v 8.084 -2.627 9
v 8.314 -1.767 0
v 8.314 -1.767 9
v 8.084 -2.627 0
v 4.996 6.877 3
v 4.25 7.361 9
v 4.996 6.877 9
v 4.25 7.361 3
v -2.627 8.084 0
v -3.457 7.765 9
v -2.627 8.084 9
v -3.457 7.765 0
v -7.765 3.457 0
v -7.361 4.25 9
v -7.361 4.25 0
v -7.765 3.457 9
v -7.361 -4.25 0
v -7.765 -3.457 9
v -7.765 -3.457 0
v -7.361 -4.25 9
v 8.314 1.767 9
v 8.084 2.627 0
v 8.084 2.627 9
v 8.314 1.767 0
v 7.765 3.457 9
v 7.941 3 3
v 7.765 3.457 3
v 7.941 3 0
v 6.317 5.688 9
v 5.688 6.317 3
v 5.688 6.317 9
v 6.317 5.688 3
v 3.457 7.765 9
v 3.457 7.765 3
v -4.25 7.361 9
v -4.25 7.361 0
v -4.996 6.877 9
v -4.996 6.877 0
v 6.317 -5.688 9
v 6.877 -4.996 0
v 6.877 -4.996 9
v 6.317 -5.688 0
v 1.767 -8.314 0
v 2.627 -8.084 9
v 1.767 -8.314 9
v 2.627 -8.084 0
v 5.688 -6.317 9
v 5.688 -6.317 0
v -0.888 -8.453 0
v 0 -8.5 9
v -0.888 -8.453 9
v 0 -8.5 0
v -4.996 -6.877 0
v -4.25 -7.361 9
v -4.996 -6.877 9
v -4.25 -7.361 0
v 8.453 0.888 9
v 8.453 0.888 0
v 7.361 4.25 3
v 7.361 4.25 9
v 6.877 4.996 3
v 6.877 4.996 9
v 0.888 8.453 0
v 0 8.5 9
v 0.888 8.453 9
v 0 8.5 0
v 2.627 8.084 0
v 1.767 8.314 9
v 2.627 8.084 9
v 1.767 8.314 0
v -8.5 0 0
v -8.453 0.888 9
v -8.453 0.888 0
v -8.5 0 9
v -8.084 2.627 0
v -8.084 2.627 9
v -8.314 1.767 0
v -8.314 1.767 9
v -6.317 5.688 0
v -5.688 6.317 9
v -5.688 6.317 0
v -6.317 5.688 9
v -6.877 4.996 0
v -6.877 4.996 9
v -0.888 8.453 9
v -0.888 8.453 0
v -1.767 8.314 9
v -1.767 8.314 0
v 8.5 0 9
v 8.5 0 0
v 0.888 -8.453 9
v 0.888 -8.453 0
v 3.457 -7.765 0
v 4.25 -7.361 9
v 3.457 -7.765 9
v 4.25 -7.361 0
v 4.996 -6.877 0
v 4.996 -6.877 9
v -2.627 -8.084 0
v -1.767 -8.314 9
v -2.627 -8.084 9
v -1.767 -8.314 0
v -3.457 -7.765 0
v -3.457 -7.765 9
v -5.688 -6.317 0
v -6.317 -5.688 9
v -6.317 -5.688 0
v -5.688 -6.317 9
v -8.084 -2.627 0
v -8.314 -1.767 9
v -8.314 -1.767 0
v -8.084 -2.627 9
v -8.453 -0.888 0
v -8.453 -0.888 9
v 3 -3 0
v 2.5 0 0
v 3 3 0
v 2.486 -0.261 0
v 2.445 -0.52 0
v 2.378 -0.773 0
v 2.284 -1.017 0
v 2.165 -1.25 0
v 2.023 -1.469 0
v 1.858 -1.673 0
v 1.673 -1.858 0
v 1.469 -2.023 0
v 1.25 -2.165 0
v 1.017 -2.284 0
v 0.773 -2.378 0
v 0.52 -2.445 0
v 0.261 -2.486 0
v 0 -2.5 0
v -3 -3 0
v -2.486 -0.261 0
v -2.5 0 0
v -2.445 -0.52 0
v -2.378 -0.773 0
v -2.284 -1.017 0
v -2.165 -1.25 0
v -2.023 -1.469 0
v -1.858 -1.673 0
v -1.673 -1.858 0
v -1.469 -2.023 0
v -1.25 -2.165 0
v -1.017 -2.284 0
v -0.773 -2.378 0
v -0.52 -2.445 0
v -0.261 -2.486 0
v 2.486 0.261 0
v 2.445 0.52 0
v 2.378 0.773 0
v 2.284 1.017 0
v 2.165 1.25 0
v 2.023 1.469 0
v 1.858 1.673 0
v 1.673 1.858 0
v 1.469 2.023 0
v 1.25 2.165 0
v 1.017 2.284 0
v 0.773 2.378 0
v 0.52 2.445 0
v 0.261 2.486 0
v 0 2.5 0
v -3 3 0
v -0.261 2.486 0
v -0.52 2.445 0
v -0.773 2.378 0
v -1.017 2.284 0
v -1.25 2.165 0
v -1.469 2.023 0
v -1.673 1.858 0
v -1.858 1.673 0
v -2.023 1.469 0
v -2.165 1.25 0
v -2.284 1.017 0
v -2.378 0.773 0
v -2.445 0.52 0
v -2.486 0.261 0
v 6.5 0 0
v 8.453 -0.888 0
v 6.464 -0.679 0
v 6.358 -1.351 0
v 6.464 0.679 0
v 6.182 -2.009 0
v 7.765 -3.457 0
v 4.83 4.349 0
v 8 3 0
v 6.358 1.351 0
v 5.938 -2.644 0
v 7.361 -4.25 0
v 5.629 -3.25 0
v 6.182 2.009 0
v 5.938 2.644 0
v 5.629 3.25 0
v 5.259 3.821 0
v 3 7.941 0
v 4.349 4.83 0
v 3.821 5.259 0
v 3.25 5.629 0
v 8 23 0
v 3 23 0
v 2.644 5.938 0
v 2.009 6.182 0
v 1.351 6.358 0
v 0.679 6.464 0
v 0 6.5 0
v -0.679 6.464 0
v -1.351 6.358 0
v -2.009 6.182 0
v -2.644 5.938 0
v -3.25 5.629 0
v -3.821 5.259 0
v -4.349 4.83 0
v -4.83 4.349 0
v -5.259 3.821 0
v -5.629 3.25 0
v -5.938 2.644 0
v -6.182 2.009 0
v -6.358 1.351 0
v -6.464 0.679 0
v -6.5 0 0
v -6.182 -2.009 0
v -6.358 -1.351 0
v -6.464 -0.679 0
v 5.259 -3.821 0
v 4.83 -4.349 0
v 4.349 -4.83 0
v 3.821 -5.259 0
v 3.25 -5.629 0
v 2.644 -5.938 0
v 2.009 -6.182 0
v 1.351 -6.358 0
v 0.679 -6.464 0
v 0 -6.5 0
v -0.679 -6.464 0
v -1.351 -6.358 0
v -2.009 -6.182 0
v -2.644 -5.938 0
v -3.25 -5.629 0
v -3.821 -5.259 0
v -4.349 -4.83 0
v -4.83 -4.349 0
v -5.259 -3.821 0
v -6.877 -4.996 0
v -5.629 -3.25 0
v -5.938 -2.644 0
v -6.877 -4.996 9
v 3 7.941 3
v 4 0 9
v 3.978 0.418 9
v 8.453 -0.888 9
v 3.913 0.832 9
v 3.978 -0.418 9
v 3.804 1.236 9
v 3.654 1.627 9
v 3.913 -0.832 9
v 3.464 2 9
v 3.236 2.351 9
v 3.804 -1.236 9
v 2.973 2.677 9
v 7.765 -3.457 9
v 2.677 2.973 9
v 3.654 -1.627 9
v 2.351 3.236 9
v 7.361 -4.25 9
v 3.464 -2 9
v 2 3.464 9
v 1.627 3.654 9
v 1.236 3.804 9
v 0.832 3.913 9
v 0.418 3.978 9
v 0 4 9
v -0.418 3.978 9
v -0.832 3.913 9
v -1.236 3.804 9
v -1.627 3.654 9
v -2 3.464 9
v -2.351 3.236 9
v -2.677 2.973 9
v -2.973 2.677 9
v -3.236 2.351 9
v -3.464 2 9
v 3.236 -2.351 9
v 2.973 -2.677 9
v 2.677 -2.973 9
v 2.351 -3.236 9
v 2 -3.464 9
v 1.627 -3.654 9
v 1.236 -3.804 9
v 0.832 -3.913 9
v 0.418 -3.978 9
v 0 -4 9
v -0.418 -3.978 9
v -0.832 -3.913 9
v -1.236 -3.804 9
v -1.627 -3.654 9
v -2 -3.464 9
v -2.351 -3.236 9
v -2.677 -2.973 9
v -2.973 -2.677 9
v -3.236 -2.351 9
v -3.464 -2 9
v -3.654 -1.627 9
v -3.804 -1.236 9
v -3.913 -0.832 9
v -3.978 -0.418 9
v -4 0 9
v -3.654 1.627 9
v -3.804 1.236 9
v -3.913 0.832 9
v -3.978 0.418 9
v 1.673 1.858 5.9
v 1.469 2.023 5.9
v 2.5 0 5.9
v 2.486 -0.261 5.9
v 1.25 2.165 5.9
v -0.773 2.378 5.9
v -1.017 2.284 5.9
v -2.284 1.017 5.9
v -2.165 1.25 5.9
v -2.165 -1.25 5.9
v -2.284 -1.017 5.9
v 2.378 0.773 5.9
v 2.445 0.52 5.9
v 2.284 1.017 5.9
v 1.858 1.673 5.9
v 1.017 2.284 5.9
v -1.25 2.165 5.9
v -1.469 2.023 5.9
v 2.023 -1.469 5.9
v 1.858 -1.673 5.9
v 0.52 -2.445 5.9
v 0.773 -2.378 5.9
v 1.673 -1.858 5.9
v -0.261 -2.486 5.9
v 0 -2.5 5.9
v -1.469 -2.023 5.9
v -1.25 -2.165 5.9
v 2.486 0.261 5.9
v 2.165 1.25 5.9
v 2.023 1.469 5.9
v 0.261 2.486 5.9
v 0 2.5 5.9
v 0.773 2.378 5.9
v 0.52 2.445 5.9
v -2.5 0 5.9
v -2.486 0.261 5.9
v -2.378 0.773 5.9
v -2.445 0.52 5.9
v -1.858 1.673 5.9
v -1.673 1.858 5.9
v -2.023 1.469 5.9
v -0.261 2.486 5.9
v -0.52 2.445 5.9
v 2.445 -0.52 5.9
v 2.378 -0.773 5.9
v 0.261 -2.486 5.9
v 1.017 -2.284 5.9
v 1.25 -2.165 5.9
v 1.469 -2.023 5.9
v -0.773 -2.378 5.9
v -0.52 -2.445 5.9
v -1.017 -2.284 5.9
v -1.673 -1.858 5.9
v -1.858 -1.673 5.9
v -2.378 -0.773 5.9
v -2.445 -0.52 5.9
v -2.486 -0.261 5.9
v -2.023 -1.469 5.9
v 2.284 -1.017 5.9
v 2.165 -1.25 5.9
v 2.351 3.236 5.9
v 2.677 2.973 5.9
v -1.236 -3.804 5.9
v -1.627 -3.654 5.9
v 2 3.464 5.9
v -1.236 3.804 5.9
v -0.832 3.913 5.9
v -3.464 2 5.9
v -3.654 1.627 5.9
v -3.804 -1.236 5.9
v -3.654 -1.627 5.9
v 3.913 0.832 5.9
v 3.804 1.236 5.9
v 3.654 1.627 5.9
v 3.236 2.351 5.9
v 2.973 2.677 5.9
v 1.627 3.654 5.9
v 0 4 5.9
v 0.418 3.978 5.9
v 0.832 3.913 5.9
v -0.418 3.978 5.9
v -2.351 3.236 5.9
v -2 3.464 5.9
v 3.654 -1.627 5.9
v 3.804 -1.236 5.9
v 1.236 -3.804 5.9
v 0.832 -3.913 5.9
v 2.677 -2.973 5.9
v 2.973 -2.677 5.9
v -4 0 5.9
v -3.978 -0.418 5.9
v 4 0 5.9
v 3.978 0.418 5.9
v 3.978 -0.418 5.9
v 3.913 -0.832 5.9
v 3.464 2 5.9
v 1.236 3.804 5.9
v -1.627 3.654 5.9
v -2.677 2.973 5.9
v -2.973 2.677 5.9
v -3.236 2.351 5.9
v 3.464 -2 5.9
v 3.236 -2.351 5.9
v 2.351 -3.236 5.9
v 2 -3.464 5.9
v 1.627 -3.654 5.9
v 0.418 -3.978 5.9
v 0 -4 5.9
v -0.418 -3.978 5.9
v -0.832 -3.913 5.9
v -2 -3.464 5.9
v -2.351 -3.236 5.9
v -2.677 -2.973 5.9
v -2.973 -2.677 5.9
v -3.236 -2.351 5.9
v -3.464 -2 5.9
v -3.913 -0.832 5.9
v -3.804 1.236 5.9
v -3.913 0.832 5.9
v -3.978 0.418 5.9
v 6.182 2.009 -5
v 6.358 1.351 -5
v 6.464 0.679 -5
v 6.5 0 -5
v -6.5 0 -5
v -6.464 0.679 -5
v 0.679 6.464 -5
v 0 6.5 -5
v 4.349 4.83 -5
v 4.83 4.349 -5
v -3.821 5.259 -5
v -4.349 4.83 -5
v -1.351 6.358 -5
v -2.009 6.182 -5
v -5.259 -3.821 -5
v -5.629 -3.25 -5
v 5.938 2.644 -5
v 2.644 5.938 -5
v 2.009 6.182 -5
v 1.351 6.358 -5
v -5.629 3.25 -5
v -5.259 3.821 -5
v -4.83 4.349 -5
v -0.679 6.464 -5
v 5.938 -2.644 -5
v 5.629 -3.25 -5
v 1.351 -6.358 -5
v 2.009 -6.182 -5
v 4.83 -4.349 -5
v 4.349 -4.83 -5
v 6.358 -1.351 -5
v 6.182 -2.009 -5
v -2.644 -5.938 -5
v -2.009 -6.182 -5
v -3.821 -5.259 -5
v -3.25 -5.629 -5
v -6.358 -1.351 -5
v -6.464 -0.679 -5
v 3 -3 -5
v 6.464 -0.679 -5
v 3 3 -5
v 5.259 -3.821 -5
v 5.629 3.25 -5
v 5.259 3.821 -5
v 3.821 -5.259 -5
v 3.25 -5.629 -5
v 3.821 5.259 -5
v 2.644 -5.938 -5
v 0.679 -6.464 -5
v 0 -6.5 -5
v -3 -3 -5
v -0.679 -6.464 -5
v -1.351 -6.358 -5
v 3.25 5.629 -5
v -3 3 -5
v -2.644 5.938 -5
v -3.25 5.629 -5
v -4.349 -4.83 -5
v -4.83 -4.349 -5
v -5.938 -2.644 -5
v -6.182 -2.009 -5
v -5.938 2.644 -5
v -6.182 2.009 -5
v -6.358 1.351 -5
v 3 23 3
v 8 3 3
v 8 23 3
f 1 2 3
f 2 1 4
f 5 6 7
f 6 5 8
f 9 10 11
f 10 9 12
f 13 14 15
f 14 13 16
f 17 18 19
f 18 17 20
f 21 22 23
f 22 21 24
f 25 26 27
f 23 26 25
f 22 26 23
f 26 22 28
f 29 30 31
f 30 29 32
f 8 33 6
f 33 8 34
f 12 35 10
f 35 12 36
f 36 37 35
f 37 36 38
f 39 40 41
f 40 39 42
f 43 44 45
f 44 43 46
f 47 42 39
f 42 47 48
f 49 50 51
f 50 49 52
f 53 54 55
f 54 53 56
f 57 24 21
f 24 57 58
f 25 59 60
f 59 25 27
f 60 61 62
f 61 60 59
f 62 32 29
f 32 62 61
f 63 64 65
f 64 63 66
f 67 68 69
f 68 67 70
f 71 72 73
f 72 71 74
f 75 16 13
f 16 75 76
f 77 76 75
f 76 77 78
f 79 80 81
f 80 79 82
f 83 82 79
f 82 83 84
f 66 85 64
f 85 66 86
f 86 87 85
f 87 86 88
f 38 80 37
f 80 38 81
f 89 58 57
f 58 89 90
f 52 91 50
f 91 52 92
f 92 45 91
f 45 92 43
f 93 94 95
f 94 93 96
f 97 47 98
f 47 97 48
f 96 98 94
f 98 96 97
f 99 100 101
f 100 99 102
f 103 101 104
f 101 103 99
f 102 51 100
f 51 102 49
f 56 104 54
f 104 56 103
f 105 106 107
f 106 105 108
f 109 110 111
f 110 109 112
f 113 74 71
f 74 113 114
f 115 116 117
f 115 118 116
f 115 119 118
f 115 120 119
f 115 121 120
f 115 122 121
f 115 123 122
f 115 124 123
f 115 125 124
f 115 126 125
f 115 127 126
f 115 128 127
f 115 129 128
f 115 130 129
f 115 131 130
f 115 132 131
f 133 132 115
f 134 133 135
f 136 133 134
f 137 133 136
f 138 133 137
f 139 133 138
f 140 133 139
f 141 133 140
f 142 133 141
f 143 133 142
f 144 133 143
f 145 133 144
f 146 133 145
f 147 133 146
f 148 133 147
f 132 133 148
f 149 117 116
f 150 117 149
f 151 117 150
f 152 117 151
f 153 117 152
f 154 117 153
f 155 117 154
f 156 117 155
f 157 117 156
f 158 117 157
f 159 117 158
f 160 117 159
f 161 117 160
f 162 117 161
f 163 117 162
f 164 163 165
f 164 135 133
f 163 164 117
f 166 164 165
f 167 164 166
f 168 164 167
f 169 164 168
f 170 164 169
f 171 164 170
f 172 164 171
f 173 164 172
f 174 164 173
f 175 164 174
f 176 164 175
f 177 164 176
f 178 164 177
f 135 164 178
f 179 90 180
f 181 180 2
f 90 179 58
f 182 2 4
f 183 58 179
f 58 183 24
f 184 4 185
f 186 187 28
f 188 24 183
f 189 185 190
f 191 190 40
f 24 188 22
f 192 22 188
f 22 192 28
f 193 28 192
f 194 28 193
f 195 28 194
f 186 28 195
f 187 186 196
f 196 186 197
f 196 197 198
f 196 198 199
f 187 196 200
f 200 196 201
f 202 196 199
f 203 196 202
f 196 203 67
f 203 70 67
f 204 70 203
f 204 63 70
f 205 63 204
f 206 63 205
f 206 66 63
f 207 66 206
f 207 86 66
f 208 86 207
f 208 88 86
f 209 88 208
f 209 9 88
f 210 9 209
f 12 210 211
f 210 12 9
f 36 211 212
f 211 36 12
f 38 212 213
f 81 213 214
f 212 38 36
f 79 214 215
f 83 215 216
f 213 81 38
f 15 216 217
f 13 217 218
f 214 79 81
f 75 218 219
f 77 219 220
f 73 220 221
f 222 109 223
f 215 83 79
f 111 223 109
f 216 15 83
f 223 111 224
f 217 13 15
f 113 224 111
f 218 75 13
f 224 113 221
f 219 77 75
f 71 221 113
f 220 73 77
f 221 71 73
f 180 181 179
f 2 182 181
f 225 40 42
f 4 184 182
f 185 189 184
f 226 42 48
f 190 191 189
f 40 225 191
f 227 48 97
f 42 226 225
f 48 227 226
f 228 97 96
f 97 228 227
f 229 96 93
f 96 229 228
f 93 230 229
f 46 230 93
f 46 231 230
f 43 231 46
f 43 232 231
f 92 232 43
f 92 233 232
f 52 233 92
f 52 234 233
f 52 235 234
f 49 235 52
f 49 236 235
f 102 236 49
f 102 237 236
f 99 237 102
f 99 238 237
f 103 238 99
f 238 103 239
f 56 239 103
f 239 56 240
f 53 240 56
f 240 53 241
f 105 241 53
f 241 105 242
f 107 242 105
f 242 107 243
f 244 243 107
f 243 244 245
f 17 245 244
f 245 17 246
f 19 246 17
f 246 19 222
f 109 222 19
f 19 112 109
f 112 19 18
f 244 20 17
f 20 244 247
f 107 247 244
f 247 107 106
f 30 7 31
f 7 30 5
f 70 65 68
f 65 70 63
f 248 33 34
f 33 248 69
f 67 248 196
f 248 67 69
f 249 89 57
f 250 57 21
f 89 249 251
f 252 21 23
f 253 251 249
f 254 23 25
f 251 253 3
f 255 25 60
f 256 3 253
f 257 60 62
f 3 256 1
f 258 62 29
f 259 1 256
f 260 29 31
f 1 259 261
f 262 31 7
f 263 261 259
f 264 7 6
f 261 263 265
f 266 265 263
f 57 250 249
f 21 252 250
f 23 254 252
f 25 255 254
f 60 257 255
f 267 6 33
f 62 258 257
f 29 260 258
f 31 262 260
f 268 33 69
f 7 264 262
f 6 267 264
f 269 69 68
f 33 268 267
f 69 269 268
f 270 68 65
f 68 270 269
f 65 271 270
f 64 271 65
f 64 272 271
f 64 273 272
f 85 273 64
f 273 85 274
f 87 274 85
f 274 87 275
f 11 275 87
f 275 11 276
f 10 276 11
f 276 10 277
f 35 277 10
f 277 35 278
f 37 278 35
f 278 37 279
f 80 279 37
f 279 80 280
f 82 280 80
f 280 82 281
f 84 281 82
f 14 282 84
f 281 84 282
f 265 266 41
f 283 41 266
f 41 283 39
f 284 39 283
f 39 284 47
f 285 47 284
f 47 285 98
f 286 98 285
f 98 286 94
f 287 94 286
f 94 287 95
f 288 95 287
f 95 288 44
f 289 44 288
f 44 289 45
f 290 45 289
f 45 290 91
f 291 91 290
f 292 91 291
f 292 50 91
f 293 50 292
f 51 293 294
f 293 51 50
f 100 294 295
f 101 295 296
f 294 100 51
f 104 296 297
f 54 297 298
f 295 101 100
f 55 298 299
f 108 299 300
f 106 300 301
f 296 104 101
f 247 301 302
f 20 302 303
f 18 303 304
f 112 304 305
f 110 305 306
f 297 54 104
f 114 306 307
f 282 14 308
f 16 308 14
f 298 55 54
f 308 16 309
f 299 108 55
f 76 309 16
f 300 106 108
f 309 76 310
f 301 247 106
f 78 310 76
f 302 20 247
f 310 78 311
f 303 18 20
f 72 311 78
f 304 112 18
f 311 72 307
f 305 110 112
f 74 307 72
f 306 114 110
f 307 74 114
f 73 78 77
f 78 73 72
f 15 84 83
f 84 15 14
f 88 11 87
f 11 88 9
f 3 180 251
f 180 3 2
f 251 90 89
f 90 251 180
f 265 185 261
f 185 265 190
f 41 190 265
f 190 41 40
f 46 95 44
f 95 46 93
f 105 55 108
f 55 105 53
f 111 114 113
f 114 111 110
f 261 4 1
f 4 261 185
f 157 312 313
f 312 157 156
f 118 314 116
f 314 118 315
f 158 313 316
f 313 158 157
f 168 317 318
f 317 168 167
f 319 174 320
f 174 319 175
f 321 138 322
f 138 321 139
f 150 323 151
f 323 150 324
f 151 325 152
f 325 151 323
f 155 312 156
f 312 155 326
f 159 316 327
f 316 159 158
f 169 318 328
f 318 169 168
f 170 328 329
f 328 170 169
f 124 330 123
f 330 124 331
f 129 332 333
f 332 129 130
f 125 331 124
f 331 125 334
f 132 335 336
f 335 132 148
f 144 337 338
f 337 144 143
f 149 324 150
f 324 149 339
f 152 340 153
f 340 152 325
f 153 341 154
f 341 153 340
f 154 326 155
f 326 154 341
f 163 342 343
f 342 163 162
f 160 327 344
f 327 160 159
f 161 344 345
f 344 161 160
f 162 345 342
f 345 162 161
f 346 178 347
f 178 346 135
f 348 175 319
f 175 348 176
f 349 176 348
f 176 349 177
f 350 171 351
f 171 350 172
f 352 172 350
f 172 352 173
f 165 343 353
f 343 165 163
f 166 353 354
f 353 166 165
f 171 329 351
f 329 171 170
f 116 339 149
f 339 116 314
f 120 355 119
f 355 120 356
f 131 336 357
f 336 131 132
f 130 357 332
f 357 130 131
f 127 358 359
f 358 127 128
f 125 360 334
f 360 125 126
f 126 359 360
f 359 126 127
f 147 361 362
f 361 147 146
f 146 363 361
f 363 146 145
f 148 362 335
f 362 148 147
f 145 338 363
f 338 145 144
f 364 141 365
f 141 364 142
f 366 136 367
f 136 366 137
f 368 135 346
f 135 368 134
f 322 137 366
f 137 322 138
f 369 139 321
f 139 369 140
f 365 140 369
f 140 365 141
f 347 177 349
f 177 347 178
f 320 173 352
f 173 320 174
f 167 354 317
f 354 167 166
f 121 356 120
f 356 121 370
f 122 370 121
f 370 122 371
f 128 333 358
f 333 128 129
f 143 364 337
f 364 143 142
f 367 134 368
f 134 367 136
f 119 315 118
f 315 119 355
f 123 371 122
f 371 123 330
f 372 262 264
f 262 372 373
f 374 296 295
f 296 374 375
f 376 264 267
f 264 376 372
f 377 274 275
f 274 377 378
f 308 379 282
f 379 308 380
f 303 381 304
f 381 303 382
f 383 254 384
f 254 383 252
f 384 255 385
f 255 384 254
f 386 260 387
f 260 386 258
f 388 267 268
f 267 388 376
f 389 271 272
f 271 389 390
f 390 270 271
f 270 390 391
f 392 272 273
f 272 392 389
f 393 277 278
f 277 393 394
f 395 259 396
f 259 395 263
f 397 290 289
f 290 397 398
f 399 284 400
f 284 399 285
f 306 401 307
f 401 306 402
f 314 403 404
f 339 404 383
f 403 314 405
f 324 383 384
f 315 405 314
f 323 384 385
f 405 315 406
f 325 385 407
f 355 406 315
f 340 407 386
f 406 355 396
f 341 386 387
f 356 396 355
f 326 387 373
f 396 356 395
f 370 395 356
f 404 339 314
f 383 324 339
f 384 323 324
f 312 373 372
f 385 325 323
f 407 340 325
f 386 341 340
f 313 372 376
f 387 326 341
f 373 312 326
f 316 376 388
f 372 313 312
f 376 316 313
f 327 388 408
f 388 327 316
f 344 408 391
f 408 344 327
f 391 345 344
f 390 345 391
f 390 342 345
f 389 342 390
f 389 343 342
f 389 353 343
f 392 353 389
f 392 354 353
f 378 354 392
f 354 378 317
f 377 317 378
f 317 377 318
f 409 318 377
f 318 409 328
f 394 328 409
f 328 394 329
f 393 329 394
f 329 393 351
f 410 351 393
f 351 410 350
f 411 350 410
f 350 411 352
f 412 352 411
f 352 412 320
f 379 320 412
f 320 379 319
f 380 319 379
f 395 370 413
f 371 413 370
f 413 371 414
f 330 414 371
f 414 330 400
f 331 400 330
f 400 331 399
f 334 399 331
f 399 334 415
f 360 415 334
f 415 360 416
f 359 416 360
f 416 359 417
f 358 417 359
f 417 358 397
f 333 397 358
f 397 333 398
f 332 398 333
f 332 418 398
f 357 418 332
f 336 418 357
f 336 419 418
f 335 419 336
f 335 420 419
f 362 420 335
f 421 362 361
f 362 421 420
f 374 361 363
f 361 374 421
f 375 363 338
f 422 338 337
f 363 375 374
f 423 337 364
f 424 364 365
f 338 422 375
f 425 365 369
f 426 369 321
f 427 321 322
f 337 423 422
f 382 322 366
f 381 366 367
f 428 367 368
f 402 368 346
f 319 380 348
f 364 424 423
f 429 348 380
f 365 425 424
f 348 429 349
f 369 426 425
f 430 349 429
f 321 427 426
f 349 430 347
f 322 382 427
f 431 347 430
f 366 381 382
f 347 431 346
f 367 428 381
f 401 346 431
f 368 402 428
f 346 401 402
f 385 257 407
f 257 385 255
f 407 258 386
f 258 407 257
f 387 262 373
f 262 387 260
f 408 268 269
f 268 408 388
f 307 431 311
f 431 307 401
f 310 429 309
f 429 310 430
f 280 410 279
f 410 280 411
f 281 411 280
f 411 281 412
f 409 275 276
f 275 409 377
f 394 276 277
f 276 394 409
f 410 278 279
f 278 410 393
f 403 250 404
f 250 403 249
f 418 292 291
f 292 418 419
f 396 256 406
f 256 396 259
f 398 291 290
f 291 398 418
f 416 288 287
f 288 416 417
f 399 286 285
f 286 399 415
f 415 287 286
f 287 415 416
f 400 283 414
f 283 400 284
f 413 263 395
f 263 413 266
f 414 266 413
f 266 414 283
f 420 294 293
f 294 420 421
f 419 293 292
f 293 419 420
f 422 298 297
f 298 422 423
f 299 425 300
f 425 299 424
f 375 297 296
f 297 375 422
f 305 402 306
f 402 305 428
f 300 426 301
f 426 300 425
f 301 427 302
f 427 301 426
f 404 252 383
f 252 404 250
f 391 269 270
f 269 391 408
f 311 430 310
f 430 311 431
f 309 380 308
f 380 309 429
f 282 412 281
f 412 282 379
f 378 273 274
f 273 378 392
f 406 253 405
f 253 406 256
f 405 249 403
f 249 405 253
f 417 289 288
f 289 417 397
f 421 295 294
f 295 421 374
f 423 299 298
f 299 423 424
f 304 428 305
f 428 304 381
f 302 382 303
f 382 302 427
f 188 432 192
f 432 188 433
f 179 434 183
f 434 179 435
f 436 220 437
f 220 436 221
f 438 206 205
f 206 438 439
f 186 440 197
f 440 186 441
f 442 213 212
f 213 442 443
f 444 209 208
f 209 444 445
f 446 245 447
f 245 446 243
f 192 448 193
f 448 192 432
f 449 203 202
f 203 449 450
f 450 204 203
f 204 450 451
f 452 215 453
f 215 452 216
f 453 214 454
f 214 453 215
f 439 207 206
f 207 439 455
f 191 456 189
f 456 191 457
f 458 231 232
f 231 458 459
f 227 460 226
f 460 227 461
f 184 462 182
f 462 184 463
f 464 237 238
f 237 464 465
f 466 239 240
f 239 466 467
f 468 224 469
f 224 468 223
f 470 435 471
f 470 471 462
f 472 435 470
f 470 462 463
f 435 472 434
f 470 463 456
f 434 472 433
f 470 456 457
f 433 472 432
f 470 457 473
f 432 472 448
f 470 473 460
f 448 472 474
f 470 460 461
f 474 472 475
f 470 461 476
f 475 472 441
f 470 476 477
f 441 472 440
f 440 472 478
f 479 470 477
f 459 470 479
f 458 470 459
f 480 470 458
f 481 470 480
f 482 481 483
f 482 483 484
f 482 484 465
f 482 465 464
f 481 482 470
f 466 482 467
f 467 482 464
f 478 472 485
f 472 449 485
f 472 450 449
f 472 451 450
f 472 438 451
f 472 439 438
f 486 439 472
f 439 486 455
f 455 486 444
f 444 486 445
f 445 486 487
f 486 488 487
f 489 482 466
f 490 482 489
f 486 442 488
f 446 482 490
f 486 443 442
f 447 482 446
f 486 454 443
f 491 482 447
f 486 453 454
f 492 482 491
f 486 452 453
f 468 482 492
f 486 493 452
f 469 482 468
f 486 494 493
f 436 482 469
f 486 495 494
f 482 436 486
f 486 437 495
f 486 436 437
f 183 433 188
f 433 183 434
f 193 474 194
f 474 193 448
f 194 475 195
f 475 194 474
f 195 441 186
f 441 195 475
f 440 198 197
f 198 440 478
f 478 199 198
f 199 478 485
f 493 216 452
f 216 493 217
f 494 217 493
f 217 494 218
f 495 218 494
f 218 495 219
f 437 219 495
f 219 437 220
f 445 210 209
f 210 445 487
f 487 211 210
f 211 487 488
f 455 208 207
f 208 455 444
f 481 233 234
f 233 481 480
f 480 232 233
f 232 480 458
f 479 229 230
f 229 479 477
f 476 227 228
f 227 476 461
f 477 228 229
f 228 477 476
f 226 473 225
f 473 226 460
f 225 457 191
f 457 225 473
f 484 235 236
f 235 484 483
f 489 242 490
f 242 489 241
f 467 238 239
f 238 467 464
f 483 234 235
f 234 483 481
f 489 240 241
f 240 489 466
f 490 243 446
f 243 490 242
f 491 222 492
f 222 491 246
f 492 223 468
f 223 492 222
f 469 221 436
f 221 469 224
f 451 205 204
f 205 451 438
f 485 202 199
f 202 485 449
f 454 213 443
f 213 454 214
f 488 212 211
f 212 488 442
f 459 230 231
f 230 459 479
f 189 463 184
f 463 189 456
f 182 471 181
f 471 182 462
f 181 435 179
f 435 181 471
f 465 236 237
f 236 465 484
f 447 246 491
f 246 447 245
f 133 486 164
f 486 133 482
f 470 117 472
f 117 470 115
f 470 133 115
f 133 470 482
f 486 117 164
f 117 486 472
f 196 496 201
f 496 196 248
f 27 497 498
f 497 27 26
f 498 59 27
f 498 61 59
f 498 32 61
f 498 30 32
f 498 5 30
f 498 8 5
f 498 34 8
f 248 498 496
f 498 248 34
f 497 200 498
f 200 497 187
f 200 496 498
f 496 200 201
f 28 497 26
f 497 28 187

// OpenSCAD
// Apotheker Riegel

riegel = true;

if (riegel) riegel();
    

module riegel() {
    $fn = 60;
    
    difference () {
        translate([0,0,4.5])
        cylinder (d=17,h=9, center=true);
        cylinder (d=5,h=25, center=true);
        translate([0,0,7.5])
        cylinder (d=8,h=3.2, center=true);
    }
    difference () {
        translate([0,0,-2.5])
        cylinder (d=13,h=5, center=true);
        translate([0,0,-3])
        cube([6,6,6],center=true);
    }
    
    translate([3,3,0])
    cube([5,20,3]);
}
